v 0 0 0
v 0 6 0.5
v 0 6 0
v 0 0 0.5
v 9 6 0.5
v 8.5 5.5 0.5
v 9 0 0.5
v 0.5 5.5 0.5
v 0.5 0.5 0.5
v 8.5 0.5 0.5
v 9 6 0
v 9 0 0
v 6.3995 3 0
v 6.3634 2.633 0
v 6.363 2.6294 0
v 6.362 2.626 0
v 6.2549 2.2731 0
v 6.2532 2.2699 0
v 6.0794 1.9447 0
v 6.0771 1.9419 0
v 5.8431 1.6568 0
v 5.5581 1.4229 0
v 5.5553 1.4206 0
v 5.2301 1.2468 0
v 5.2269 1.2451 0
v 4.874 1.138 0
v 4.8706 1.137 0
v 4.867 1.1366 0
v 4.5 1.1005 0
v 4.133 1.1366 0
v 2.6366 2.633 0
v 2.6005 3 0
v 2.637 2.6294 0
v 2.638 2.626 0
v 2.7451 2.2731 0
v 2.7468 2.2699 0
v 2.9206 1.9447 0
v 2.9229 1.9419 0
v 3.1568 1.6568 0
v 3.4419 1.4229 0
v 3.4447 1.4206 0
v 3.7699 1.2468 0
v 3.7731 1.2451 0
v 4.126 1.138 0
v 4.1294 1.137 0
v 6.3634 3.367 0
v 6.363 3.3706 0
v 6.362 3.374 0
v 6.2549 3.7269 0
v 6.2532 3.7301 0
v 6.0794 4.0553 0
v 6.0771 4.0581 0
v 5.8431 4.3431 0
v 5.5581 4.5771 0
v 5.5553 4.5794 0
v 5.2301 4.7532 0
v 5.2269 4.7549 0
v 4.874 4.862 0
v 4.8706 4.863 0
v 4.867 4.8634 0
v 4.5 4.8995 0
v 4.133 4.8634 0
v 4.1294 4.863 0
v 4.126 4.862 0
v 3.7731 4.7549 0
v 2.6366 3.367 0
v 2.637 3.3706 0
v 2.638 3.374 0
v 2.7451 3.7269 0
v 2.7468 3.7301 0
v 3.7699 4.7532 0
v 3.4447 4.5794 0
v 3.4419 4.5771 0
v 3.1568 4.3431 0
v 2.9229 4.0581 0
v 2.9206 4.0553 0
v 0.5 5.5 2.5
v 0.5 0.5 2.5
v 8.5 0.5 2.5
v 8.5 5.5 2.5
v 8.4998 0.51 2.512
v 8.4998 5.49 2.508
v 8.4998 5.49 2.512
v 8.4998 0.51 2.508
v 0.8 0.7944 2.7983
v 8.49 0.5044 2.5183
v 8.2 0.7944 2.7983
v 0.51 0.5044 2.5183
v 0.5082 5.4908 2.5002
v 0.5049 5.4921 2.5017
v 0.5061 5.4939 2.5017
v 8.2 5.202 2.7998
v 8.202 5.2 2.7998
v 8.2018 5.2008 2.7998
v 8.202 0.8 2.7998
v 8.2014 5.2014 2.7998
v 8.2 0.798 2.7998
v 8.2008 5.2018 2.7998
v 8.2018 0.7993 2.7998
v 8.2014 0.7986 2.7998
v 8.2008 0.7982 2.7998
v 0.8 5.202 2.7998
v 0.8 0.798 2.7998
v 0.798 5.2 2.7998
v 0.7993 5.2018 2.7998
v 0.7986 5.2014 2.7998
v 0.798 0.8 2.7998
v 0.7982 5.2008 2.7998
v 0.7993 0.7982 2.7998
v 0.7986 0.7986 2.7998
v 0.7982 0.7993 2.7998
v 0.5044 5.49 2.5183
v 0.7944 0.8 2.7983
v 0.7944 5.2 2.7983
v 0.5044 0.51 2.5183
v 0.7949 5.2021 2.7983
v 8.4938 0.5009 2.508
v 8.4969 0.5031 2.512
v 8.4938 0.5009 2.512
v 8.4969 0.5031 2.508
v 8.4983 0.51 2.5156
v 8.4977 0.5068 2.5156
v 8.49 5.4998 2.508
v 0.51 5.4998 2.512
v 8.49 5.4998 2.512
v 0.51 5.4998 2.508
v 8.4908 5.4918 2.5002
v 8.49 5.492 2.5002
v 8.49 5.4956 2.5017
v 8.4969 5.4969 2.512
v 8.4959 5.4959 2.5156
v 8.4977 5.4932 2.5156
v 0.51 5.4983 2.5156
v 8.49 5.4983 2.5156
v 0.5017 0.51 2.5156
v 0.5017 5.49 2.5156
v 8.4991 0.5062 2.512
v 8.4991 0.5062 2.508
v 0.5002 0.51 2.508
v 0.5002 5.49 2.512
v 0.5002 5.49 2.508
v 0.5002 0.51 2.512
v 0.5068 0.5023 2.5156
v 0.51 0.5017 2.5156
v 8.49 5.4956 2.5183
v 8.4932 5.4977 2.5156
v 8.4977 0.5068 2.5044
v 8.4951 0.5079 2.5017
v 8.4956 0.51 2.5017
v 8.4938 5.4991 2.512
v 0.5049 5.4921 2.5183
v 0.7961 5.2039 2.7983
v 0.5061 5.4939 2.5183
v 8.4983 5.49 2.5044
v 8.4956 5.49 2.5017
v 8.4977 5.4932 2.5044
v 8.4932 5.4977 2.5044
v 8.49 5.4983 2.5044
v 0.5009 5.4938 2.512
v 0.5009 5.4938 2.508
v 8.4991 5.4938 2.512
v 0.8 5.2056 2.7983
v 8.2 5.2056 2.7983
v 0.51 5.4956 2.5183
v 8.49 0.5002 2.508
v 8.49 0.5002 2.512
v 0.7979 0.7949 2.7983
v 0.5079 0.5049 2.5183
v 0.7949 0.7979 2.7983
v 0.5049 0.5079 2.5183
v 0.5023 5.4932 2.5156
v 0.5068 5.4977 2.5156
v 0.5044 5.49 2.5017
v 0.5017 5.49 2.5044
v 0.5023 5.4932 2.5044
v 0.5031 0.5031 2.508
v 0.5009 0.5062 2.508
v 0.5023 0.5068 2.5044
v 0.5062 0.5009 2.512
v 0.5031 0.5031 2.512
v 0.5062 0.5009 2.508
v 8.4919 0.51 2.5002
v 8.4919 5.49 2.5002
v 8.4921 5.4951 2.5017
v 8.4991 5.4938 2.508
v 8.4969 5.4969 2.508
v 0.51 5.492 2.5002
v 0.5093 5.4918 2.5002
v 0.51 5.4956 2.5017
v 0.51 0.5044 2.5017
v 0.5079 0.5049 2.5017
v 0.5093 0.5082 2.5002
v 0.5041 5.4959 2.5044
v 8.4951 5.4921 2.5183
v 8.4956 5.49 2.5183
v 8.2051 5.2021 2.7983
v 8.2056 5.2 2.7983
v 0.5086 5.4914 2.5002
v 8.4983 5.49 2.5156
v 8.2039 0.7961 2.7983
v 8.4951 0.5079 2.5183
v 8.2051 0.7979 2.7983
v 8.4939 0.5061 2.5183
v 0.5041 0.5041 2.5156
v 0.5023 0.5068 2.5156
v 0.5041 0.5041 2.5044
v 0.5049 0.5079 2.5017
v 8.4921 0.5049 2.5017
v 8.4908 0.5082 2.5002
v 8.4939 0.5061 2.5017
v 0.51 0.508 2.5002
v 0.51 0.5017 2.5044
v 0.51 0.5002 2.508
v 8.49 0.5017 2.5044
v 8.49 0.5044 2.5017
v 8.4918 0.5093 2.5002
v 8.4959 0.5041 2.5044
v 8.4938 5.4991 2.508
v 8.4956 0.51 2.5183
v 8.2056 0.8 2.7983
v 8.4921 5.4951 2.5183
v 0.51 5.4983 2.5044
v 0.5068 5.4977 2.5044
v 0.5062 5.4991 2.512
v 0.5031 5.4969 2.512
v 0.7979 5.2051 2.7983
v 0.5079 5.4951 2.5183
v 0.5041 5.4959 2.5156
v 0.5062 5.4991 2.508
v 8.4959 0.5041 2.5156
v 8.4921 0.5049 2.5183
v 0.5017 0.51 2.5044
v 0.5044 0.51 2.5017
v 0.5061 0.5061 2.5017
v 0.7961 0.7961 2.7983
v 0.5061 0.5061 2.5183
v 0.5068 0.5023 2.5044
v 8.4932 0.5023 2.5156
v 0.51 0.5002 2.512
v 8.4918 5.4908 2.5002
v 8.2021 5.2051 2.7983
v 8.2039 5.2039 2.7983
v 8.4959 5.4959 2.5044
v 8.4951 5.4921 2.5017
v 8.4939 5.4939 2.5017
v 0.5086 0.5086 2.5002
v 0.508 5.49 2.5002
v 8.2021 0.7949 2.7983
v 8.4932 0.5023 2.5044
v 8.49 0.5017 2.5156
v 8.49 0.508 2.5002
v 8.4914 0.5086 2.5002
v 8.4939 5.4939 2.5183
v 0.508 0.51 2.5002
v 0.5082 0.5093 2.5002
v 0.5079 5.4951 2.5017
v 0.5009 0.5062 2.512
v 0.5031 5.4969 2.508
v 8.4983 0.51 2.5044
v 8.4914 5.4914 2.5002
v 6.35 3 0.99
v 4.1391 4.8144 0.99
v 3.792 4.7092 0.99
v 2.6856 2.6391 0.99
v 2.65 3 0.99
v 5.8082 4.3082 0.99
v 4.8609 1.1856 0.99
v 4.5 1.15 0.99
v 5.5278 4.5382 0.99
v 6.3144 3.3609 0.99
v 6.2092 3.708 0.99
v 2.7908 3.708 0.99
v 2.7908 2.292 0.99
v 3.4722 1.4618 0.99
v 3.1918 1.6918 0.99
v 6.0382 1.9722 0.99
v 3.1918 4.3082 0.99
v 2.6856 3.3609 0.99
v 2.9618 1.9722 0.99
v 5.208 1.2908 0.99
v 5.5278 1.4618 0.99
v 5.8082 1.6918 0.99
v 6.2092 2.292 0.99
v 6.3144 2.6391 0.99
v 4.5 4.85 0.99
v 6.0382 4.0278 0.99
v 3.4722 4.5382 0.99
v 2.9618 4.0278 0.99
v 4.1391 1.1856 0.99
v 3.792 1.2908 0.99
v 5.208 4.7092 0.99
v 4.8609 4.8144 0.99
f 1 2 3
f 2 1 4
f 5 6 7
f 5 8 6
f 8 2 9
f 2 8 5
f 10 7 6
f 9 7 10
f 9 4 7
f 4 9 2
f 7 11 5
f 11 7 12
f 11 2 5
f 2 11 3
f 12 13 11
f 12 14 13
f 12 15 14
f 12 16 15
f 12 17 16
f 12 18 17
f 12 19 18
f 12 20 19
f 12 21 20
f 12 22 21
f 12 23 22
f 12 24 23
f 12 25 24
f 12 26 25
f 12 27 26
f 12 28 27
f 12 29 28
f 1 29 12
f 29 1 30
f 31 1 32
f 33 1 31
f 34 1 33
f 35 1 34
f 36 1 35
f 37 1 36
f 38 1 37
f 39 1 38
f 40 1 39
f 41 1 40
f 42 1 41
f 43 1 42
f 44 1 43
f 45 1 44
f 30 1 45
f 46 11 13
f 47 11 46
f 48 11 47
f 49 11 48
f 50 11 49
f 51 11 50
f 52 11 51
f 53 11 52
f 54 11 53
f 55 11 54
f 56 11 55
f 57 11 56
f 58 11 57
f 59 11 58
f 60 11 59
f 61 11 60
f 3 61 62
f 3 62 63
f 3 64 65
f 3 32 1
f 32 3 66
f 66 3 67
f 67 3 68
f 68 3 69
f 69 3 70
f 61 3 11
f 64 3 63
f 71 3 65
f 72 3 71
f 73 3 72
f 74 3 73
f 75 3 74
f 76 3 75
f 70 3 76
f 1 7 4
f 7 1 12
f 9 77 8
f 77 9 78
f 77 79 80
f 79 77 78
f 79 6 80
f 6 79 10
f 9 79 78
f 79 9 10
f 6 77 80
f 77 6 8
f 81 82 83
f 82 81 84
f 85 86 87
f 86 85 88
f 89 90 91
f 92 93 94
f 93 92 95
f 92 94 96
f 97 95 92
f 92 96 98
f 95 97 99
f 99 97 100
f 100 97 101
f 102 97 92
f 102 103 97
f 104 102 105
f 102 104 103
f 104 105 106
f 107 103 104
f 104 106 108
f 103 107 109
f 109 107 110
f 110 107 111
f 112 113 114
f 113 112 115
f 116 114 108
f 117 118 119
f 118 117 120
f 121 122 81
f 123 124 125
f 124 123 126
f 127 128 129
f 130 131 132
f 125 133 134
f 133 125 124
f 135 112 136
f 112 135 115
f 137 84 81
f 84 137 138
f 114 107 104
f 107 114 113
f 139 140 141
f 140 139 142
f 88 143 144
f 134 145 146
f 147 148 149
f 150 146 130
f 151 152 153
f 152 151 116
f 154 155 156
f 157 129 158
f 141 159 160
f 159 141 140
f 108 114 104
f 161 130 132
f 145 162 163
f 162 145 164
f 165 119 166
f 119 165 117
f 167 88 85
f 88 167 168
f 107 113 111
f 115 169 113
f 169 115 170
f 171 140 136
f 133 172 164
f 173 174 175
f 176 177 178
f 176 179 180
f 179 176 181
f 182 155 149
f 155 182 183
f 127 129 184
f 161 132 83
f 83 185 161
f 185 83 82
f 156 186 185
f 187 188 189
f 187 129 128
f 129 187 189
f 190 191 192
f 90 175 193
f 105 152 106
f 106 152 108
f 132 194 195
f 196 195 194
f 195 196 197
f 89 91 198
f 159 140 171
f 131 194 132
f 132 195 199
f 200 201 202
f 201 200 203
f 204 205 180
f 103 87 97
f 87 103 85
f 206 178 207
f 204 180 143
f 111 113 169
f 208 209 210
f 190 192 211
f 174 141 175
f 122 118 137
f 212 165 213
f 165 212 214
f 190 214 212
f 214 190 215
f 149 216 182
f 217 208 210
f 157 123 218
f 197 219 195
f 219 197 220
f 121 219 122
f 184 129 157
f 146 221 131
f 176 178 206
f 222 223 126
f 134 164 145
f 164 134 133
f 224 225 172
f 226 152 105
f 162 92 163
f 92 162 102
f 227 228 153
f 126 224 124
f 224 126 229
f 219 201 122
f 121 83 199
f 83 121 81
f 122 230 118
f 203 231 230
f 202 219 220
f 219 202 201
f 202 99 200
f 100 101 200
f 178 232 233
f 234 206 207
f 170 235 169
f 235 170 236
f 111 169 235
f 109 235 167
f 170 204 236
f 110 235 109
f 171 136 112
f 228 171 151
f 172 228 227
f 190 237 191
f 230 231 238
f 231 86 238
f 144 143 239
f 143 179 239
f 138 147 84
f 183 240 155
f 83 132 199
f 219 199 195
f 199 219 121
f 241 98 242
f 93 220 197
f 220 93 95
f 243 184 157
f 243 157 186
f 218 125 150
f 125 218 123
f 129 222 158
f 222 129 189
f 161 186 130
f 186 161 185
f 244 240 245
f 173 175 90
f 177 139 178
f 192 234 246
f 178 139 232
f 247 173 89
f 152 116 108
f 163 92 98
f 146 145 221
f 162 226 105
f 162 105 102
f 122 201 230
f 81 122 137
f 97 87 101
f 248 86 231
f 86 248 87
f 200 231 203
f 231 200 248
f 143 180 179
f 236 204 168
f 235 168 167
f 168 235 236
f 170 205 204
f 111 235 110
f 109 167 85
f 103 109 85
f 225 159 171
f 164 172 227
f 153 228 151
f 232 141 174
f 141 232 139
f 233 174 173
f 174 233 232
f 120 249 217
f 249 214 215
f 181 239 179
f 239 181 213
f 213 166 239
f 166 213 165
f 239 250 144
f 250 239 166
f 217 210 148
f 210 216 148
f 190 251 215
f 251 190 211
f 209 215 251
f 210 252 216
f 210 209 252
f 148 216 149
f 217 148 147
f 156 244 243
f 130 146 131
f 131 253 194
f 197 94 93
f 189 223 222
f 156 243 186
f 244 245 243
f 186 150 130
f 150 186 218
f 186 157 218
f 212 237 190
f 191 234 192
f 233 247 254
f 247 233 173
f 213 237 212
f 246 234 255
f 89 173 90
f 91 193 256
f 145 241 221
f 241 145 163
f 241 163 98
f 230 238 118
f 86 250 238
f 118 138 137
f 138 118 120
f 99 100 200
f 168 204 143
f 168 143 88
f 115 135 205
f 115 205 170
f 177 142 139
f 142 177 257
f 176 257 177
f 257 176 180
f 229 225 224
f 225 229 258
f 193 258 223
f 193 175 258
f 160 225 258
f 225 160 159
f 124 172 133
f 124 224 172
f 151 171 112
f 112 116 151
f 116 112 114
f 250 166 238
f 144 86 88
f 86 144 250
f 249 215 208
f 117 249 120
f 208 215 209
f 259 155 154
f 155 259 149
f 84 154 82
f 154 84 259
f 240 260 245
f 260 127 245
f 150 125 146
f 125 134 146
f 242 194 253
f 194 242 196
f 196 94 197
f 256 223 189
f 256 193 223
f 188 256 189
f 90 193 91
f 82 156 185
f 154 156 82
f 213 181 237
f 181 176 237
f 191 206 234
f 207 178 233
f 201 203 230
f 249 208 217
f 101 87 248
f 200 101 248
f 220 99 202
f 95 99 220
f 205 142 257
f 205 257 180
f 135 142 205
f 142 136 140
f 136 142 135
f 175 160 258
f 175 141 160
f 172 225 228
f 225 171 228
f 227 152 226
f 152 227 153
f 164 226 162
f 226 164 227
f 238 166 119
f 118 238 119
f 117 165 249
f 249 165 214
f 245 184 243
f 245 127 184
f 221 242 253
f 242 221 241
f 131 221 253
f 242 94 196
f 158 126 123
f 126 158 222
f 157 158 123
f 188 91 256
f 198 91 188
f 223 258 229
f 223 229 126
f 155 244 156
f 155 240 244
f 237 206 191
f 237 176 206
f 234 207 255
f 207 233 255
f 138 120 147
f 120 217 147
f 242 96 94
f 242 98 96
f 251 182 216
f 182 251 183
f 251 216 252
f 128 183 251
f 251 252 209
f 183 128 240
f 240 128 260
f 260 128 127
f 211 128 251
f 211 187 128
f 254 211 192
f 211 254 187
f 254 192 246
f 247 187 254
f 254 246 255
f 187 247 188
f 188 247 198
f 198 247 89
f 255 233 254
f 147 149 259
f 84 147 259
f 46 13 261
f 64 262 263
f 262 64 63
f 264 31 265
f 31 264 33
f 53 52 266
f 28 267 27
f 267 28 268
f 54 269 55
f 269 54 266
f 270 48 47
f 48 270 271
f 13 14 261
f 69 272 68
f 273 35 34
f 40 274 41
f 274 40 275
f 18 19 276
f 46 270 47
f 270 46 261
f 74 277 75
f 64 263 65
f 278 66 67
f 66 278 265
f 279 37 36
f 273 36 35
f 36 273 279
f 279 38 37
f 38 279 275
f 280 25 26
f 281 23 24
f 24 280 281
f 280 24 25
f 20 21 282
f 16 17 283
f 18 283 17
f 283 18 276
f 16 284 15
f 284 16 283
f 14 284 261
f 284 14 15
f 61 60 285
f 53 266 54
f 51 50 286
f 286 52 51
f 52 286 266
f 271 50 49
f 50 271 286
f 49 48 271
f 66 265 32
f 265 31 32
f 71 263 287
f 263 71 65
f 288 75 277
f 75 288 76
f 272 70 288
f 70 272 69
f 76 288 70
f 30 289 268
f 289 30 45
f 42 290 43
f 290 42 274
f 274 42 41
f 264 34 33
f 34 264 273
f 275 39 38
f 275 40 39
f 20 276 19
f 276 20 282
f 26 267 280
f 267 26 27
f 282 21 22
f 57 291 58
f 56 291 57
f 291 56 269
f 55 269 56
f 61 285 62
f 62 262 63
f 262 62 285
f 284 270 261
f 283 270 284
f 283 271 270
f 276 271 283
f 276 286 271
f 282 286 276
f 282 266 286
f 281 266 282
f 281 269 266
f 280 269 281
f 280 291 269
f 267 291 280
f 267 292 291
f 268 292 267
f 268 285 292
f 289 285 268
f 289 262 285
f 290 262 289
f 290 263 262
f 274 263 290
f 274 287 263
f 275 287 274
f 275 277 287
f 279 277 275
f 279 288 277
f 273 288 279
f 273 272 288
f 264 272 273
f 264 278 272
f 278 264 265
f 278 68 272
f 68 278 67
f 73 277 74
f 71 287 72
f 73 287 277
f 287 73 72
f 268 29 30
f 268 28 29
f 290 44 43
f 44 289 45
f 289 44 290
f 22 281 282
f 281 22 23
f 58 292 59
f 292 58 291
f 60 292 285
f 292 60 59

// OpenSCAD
// keyTopLowProfile4

keyTopWidth = 8.0;
keyTopDepth = 5.0;
keyTopThickness = 2.5;

keyTopHole1 = 3.7;
keyTopHole2 = 3.8;
keyTopHoleHeight = 1.0;
keyTopRimZOffset = 3.5;
rimSize = 0.5;
taperSize = 0.3;

module keyTop() {
    rimWidth = keyTopWidth + 2 * rimSize;
    rimDepth = keyTopDepth + 2 * rimSize;
    difference() {
        union() {
            // rim
            cube([rimWidth, rimDepth, rimSize]);
            // top
            translate([rimSize, rimSize, 0]) 
                cube([keyTopWidth, keyTopDepth, keyTopThickness]);
            translate([rimSize, rimSize, keyTopThickness]) 
                trapezoid(keyTopWidth, keyTopDepth, keyTopThickness, taperSize);
        }
        translate([rimWidth / 2, rimDepth / 2, -0.01])
            cylinder(d1 = keyTopHole2, d2 = keyTopHole1, h = keyTopHoleHeight, $fn = 32);
    }
    
}

module trapezoid(width, depth, height, taper) {
    cornerRadius = 0.01;
    $fn = 16;
    hull() {
        // lower plane
        translate([0, 0, cornerRadius]) {
            translate([cornerRadius, cornerRadius, 0]) sphere(r = cornerRadius);
            translate([width - cornerRadius, cornerRadius, 0]) sphere(r = cornerRadius);
            translate([cornerRadius, depth - cornerRadius, 0]) sphere(r = cornerRadius);
            translate([width - cornerRadius, depth - cornerRadius, 0]) sphere(r = cornerRadius);
        }
        // upper plane
        translate([0, 0, taper - cornerRadius]) {
            translate([taper, taper, 0]) sphere(r = cornerRadius);
            translate([width - taper, taper, 0]) sphere(r = cornerRadius);
            translate([taper, depth - taper, 0]) sphere(r = cornerRadius);
            translate([width - taper, depth - taper, 0]) sphere(r = cornerRadius);            
        }
    }
}

keyTop();
